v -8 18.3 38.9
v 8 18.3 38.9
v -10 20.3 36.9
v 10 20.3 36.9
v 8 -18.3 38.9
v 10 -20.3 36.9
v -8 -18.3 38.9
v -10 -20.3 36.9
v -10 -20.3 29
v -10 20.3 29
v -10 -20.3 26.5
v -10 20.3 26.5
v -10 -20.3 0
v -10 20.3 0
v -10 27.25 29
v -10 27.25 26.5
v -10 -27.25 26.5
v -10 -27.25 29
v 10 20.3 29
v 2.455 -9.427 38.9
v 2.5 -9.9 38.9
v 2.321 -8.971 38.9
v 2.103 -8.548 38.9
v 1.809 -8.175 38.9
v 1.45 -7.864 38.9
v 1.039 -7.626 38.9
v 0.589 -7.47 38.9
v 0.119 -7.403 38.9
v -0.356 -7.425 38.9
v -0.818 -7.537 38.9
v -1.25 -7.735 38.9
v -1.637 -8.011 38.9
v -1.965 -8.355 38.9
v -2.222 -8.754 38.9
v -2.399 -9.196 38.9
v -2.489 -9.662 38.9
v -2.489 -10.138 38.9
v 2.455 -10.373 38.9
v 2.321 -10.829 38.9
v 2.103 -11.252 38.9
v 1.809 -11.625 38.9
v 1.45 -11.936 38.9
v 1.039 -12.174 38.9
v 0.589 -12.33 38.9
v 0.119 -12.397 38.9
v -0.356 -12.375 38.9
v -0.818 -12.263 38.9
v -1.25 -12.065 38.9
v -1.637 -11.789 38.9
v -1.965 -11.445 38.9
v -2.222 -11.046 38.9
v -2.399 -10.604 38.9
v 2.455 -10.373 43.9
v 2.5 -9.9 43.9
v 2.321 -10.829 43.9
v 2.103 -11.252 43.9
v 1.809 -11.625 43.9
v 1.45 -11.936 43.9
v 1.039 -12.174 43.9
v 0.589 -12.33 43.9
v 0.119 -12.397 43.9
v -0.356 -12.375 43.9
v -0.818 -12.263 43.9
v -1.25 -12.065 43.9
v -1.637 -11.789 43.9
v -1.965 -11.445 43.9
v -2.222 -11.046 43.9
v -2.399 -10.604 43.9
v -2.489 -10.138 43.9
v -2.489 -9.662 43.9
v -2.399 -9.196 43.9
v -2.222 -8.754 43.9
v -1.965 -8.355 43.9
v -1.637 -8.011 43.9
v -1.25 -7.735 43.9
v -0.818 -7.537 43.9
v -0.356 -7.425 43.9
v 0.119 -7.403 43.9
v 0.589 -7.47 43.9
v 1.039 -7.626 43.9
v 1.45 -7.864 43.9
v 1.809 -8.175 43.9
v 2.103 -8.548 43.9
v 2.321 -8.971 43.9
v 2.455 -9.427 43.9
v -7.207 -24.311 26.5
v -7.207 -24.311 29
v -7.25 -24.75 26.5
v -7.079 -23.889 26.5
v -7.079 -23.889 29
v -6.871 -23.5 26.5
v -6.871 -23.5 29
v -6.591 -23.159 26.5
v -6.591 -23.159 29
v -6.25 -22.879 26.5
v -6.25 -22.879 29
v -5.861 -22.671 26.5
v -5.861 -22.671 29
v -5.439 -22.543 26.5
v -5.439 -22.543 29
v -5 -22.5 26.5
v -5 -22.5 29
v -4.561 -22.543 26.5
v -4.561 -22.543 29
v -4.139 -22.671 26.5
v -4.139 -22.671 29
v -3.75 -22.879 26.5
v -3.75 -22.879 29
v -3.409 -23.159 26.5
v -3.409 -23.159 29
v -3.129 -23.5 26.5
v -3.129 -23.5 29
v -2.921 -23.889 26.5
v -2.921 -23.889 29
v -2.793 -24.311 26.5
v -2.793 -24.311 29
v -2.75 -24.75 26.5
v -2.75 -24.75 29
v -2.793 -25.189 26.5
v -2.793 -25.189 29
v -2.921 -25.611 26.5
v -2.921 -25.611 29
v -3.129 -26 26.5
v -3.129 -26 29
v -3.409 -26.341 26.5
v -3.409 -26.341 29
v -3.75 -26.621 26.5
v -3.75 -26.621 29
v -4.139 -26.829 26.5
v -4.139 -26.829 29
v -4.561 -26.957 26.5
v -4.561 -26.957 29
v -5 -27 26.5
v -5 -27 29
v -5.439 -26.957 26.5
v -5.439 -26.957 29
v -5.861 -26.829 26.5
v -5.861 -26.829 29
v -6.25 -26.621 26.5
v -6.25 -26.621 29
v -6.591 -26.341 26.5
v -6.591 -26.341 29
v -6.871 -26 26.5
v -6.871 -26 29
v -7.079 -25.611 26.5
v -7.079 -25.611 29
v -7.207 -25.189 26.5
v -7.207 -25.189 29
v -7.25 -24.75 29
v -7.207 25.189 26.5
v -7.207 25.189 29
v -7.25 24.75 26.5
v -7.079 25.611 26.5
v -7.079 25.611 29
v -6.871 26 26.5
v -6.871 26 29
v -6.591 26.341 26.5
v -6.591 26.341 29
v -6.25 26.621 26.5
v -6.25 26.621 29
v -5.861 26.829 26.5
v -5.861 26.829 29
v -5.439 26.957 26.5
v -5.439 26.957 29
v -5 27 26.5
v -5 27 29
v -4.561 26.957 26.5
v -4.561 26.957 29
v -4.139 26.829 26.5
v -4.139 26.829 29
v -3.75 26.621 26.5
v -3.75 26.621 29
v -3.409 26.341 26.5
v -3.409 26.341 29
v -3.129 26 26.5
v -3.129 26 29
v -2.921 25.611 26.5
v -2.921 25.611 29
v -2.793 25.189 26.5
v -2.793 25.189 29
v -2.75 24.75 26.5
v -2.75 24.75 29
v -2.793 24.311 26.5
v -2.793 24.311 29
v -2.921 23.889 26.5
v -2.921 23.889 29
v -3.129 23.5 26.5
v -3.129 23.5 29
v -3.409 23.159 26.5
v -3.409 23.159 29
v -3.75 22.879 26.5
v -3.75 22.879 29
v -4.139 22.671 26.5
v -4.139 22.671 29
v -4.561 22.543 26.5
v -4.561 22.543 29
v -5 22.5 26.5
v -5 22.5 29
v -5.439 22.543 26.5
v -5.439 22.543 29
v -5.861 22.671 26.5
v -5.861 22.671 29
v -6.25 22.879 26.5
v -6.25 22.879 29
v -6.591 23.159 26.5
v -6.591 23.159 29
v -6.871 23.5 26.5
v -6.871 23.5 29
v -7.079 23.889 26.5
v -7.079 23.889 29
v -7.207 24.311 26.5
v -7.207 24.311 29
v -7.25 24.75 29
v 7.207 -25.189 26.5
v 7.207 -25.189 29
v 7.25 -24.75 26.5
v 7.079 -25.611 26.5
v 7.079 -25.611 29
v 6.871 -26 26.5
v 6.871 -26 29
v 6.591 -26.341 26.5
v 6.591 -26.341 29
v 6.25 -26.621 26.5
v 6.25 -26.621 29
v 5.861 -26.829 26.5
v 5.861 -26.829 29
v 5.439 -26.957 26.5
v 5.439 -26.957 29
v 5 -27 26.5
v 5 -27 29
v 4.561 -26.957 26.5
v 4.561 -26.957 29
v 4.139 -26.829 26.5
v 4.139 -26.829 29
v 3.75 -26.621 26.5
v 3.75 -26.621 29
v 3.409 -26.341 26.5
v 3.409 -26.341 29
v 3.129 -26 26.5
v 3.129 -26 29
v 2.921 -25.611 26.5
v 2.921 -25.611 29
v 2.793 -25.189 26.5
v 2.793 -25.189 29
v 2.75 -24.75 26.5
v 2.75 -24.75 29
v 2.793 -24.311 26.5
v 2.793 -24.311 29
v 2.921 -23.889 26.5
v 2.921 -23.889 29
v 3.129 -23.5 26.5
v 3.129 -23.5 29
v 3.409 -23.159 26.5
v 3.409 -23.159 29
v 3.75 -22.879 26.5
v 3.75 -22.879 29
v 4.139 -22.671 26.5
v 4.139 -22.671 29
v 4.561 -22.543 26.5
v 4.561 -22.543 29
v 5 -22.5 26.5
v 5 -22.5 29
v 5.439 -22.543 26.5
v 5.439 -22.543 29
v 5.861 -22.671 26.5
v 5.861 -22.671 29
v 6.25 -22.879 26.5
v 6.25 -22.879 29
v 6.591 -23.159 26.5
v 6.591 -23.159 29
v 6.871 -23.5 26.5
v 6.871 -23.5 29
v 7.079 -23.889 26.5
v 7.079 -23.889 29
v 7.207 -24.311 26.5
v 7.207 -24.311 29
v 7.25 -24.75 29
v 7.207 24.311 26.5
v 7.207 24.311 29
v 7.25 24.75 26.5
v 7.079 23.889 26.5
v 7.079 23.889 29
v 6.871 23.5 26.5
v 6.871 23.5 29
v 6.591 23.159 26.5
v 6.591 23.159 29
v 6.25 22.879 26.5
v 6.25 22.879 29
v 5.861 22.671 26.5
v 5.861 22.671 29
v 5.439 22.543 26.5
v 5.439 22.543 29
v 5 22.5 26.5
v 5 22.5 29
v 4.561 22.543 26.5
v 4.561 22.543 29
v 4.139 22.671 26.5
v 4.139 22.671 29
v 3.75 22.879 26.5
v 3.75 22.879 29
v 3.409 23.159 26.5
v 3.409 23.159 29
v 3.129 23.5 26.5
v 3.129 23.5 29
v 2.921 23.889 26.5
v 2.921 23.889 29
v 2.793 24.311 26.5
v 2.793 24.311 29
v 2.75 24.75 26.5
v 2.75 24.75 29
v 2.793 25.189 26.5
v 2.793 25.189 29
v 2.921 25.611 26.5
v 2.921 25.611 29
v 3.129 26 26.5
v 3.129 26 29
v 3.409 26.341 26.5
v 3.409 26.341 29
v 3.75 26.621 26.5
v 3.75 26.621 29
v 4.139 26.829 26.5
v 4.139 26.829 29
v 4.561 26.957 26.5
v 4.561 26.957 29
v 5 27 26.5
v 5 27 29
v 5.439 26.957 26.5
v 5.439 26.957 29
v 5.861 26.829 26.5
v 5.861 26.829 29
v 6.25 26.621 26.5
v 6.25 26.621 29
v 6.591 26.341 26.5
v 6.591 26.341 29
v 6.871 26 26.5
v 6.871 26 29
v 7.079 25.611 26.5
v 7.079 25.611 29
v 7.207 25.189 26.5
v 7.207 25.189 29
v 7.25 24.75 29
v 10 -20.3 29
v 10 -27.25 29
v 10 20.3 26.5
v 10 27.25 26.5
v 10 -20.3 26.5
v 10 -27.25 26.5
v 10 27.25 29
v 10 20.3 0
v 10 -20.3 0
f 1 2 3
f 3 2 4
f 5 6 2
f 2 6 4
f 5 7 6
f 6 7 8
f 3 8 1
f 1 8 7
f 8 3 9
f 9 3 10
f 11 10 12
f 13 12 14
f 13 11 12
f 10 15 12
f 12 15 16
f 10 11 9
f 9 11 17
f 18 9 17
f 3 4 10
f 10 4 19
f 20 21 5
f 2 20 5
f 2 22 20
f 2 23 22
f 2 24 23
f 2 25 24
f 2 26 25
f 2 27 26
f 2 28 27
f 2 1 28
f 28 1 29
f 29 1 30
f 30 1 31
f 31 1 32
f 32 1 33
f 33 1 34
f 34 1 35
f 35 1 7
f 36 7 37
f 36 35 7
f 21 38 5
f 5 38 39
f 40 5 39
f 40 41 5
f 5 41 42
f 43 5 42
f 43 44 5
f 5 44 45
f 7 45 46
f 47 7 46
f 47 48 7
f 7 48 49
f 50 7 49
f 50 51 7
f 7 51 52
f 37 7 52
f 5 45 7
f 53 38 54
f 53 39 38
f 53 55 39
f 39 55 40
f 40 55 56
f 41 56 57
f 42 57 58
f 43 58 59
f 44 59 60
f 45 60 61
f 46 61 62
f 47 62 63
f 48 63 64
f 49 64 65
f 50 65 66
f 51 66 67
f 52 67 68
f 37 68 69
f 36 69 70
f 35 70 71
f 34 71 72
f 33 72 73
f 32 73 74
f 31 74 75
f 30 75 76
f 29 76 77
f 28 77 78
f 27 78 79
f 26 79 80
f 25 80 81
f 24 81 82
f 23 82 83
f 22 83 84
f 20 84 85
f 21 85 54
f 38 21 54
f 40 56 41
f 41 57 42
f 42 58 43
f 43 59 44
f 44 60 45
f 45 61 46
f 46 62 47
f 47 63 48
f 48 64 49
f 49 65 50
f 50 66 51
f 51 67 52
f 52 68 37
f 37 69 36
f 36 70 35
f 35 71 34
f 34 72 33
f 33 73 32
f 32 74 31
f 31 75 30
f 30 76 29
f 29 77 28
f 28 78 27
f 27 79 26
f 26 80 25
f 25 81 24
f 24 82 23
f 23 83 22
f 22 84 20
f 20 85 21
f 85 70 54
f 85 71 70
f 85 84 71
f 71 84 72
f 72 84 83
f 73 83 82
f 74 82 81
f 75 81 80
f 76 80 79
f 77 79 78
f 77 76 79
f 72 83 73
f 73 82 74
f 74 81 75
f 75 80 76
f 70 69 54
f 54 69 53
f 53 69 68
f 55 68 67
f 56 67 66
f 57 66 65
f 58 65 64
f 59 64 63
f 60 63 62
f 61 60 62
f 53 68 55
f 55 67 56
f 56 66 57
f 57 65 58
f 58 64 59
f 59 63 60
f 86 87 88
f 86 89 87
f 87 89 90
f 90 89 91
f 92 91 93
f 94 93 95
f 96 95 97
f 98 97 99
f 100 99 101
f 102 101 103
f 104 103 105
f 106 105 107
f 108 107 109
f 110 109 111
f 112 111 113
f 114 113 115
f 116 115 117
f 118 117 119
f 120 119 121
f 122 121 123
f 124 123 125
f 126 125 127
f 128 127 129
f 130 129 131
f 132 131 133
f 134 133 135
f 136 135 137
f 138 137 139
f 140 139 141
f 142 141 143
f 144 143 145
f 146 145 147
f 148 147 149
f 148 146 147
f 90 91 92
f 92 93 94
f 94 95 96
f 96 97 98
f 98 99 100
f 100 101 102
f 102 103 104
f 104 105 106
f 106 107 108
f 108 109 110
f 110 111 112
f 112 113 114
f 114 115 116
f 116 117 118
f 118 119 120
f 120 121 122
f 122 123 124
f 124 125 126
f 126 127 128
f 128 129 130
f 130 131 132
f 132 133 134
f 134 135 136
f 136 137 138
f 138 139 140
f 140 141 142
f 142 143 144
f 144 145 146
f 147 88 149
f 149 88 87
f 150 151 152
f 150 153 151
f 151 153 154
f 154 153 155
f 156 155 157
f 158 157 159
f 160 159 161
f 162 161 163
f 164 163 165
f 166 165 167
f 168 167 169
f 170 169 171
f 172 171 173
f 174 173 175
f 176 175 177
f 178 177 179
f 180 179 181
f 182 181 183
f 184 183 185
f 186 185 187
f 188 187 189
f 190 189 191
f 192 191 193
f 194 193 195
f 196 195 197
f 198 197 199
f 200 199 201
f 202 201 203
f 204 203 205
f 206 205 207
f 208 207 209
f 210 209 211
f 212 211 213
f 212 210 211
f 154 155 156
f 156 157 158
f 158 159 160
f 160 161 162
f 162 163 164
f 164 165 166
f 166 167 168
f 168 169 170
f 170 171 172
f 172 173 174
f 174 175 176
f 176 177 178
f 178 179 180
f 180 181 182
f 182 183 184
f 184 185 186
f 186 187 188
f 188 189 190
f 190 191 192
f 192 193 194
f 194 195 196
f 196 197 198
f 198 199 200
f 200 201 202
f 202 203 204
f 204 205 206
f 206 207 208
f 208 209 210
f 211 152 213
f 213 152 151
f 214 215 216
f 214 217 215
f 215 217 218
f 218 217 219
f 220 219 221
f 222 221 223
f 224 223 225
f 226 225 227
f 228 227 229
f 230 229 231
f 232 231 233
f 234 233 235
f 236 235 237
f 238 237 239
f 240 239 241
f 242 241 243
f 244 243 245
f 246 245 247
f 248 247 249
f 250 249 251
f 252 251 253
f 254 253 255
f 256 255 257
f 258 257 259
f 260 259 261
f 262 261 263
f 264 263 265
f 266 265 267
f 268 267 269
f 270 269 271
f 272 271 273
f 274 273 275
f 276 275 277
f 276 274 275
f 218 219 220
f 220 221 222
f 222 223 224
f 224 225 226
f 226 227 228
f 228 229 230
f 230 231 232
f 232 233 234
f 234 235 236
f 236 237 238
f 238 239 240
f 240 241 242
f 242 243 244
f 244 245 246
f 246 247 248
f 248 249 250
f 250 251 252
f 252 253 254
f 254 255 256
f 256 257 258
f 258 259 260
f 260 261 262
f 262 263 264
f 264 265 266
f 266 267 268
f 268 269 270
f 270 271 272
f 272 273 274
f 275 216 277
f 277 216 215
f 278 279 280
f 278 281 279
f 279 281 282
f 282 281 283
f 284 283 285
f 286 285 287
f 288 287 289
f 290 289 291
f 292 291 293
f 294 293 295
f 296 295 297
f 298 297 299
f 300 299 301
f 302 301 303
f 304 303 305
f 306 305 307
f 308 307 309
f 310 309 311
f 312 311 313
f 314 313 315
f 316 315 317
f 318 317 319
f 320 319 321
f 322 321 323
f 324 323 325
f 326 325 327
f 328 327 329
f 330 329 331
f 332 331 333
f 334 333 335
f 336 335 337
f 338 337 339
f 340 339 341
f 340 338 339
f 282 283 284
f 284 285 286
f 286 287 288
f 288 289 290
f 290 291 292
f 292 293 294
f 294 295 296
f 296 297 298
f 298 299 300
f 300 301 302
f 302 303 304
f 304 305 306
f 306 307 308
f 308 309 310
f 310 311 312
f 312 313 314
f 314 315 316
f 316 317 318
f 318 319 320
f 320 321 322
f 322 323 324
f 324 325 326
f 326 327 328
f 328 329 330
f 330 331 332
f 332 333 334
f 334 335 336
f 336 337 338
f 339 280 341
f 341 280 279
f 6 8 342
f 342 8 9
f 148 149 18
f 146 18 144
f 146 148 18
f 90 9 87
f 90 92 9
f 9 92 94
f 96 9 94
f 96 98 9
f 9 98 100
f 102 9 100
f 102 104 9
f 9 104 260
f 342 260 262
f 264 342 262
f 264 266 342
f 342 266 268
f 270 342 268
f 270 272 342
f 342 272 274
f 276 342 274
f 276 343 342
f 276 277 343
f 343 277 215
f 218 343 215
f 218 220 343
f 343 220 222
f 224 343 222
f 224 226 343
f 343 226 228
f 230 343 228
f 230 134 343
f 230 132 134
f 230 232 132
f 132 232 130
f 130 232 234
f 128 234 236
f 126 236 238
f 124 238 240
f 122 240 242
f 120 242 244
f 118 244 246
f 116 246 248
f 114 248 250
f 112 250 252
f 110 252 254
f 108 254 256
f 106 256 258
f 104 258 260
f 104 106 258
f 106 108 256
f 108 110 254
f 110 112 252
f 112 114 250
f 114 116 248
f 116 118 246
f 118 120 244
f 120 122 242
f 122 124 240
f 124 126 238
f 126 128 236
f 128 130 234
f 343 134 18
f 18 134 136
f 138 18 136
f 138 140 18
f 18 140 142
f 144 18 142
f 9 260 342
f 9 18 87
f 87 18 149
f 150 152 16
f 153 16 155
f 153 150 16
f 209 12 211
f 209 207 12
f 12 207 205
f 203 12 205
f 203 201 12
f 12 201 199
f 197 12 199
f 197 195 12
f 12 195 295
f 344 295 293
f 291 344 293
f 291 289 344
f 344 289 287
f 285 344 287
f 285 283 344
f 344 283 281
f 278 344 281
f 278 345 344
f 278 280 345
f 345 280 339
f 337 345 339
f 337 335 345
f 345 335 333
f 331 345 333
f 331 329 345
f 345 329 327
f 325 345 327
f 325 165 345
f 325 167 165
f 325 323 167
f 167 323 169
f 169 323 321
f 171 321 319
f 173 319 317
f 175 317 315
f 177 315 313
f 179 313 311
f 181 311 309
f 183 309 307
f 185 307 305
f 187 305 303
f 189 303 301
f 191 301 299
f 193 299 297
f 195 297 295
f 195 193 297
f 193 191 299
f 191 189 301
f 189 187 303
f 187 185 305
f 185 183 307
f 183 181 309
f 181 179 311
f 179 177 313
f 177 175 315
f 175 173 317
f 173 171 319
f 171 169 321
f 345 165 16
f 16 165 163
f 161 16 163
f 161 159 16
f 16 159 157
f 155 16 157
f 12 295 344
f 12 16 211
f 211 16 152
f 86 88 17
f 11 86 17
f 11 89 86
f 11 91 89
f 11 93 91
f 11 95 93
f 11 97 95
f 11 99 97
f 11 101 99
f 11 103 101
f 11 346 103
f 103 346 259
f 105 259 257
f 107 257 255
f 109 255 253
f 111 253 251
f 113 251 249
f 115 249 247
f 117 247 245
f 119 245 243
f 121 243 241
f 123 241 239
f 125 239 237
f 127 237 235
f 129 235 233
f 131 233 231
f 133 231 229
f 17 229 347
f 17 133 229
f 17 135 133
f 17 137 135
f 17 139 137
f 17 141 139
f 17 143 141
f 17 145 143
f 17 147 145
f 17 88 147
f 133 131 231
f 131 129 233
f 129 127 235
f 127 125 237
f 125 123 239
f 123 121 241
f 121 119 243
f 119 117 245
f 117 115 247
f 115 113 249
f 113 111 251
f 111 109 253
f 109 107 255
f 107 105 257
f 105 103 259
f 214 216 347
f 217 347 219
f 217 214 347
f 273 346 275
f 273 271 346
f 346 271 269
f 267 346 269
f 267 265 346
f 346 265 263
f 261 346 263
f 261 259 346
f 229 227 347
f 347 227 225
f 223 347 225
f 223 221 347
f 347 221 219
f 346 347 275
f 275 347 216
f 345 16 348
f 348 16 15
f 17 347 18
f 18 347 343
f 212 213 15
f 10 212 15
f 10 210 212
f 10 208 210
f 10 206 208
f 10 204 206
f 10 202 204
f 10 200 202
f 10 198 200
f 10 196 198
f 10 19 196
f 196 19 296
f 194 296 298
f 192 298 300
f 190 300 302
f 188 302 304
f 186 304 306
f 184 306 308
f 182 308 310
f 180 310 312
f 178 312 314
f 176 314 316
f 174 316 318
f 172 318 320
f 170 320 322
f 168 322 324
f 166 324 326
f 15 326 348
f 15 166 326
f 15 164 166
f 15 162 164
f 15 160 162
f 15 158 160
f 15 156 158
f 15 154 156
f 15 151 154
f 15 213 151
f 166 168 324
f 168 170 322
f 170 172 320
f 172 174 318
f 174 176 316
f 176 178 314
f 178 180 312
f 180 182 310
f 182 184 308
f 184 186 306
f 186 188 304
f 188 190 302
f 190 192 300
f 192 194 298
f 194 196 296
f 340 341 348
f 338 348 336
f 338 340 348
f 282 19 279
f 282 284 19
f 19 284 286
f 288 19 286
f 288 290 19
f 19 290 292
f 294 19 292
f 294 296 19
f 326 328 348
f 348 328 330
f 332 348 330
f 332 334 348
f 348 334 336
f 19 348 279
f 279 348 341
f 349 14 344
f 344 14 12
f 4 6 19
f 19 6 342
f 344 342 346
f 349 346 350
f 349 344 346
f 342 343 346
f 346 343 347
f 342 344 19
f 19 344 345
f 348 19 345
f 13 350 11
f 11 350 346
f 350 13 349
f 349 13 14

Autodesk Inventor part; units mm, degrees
ref_plane "YZ Plane" through (0, 0, 0) normal (1, 0, 0) x (0, 1, 0)
ref_plane "XZ Plane" through (0, 0, 0) normal (0, 1, 0) x (-1, 0, 0)
ref_plane "XY Plane" through (0, 0, 0) normal (0, 0, 1) x (1, 0, 0)
sketch "Skizze1" plane through (0, 0, 0) normal (0, 0, 1) x (1, 0, 0)
  line L0 (-10, -20.3) -> (10, -20.3)
  line L1 (10, -20.3) -> (10, 20.3)
  line L2 (10, 20.3) -> (-10, 20.3)
  line L3 (-10, 20.3) -> (-10, -20.3)
  line L4 (-10, -20.3) -> (10, 20.3) construction
  line L5 (10, -20.3) -> (-10, 20.3) construction
  point P0 (0, 0)
  dimension "d0" = 20
  dimension "d1" = 40.6
extrude "Extrusion1" add sketch "Skizze1" along normal blind 26.5
sketch "Skizze2" plane through (0, 0, 26.5) normal (0, 0, 1) x (1, 0, 0)
  point P0 (0, 0)
sketch "Skizze3" plane through (0, 0, 26.5) normal (0, 0, 1) x (1, 0, 0)
  line L0 (-10, 20.3) -> (-10, -20.3) projected
  line L1 (10, -20.3) -> (10, 20.3) projected
  line L2 (10, 20.3) -> (-10, 20.3) projected
  line L3 (-10, -20.3) -> (10, -20.3) projected
  line L4 (-10, -27.25) -> (10, -27.25)
  line L5 (10, -27.25) -> (10, 27.25)
  line L6 (10, 27.25) -> (-10, 27.25)
  line L7 (-10, 27.25) -> (-10, -27.25)
  line L8 (-10, -27.25) -> (10, 27.25) construction
  line L9 (10, -27.25) -> (-10, 27.25) construction
  point P0 (0, 0)
  dimension "d4" = 54.5
  dimension "d5" = 0
extrude "Extrusion2" add sketch "Skizze3" along normal blind 2.5
sketch "Skizze4" plane through (0, 0, 29) normal (0, 0, 1) x (1, 0, 0)
  line L0 (10, -20.3) -> (10, 20.3) projected
  line L1 (-10, -20.3) -> (10, -20.3)
  line L2 (10, -20.3) -> (10, 20.3)
  line L3 (10, 20.3) -> (-10, 20.3)
  line L4 (-10, 20.3) -> (-10, -20.3)
  line L5 (-10, -20.3) -> (10, 20.3) construction
  line L6 (10, -20.3) -> (-10, 20.3) construction
  point P0 (0, 0)
  dimension "d8" = 40.6
extrude "Extrusion3" add sketch "Skizze4" along normal blind 9.9
sketch "Skizze6" plane through (0, 0, 29) normal (0, 0, 1) x (1, 0, 0)
  line L0 (10, -27.25) -> (-10, -27.25) projected
  line L1 (-10, -27.25) -> (-10, -20.3) projected
  line L2 (10, -20.3) -> (-10, -20.3) projected
  line L3 (10, 20.3) -> (10, -20.3) projected
  line L4 (-10, 20.3) -> (10, 20.3) projected
  line L5 (-10, 20.3) -> (-10, 27.25) projected
  line L6 (-10, 27.25) -> (10, 27.25) projected
  line L7 (10, 27.25) -> (10, 20.3) projected
  line L8 (10, -20.3) -> (10, -27.25) projected
  line L9 (-10, -20.3) -> (-10, 20.3) projected
  circle A0 centre (5, 24.75) radius 2.25
  line L10 (-14, 0) -> (14, 0) projected
  line L11 (0, 38.15) -> (0, -38.15) projected
  point P0 (0, 0)
  dimension "d12" = 24.75
  dimension "d13" = 5
  dimension "d14" = 4.5
extrude "Extrusion4" cut sketch "Skizze6" against normal blind 9.9 contours A0
mirror "Spiegeln1" about plane through (0, 0, 0) normal (0, 1, 0) of "Extrusion4"
mirror "Spiegeln2" about plane through (0, 0, 0) normal (1, 0, 0) of "Extrusion4", "Spiegeln1"
sketch "Skizze7" plane through (0, 0, 38.9) normal (0, 0, 1) x (1, 0, 0)
  line L0 (0, 38.15) -> (0, -38.15) projected
  line L1 (-14, 0) -> (14, 0) projected
  circle A0 centre (-5, -24.75) radius 2.25 projected
  circle A1 centre (5, -24.75) radius 2.25 projected
  circle A2 centre (0, -9.9) radius 2.5
  point P0 (0, 0)
  dimension "d18" = 14.85
  dimension "d19" = 5
extrude "Extrusion5" add sketch "Skizze7" along normal blind 5 contours A2 L0 | L0 A2
chamfer "Fase1" distance 2 angle 45 4 edges at (0, -20.3, 38.9) (0, 20.3, 38.9) (10, 0, 38.9) (-10, 0, 38.9)
properties part number "Servo_Drehwerk" material "Aluminium 6061"
